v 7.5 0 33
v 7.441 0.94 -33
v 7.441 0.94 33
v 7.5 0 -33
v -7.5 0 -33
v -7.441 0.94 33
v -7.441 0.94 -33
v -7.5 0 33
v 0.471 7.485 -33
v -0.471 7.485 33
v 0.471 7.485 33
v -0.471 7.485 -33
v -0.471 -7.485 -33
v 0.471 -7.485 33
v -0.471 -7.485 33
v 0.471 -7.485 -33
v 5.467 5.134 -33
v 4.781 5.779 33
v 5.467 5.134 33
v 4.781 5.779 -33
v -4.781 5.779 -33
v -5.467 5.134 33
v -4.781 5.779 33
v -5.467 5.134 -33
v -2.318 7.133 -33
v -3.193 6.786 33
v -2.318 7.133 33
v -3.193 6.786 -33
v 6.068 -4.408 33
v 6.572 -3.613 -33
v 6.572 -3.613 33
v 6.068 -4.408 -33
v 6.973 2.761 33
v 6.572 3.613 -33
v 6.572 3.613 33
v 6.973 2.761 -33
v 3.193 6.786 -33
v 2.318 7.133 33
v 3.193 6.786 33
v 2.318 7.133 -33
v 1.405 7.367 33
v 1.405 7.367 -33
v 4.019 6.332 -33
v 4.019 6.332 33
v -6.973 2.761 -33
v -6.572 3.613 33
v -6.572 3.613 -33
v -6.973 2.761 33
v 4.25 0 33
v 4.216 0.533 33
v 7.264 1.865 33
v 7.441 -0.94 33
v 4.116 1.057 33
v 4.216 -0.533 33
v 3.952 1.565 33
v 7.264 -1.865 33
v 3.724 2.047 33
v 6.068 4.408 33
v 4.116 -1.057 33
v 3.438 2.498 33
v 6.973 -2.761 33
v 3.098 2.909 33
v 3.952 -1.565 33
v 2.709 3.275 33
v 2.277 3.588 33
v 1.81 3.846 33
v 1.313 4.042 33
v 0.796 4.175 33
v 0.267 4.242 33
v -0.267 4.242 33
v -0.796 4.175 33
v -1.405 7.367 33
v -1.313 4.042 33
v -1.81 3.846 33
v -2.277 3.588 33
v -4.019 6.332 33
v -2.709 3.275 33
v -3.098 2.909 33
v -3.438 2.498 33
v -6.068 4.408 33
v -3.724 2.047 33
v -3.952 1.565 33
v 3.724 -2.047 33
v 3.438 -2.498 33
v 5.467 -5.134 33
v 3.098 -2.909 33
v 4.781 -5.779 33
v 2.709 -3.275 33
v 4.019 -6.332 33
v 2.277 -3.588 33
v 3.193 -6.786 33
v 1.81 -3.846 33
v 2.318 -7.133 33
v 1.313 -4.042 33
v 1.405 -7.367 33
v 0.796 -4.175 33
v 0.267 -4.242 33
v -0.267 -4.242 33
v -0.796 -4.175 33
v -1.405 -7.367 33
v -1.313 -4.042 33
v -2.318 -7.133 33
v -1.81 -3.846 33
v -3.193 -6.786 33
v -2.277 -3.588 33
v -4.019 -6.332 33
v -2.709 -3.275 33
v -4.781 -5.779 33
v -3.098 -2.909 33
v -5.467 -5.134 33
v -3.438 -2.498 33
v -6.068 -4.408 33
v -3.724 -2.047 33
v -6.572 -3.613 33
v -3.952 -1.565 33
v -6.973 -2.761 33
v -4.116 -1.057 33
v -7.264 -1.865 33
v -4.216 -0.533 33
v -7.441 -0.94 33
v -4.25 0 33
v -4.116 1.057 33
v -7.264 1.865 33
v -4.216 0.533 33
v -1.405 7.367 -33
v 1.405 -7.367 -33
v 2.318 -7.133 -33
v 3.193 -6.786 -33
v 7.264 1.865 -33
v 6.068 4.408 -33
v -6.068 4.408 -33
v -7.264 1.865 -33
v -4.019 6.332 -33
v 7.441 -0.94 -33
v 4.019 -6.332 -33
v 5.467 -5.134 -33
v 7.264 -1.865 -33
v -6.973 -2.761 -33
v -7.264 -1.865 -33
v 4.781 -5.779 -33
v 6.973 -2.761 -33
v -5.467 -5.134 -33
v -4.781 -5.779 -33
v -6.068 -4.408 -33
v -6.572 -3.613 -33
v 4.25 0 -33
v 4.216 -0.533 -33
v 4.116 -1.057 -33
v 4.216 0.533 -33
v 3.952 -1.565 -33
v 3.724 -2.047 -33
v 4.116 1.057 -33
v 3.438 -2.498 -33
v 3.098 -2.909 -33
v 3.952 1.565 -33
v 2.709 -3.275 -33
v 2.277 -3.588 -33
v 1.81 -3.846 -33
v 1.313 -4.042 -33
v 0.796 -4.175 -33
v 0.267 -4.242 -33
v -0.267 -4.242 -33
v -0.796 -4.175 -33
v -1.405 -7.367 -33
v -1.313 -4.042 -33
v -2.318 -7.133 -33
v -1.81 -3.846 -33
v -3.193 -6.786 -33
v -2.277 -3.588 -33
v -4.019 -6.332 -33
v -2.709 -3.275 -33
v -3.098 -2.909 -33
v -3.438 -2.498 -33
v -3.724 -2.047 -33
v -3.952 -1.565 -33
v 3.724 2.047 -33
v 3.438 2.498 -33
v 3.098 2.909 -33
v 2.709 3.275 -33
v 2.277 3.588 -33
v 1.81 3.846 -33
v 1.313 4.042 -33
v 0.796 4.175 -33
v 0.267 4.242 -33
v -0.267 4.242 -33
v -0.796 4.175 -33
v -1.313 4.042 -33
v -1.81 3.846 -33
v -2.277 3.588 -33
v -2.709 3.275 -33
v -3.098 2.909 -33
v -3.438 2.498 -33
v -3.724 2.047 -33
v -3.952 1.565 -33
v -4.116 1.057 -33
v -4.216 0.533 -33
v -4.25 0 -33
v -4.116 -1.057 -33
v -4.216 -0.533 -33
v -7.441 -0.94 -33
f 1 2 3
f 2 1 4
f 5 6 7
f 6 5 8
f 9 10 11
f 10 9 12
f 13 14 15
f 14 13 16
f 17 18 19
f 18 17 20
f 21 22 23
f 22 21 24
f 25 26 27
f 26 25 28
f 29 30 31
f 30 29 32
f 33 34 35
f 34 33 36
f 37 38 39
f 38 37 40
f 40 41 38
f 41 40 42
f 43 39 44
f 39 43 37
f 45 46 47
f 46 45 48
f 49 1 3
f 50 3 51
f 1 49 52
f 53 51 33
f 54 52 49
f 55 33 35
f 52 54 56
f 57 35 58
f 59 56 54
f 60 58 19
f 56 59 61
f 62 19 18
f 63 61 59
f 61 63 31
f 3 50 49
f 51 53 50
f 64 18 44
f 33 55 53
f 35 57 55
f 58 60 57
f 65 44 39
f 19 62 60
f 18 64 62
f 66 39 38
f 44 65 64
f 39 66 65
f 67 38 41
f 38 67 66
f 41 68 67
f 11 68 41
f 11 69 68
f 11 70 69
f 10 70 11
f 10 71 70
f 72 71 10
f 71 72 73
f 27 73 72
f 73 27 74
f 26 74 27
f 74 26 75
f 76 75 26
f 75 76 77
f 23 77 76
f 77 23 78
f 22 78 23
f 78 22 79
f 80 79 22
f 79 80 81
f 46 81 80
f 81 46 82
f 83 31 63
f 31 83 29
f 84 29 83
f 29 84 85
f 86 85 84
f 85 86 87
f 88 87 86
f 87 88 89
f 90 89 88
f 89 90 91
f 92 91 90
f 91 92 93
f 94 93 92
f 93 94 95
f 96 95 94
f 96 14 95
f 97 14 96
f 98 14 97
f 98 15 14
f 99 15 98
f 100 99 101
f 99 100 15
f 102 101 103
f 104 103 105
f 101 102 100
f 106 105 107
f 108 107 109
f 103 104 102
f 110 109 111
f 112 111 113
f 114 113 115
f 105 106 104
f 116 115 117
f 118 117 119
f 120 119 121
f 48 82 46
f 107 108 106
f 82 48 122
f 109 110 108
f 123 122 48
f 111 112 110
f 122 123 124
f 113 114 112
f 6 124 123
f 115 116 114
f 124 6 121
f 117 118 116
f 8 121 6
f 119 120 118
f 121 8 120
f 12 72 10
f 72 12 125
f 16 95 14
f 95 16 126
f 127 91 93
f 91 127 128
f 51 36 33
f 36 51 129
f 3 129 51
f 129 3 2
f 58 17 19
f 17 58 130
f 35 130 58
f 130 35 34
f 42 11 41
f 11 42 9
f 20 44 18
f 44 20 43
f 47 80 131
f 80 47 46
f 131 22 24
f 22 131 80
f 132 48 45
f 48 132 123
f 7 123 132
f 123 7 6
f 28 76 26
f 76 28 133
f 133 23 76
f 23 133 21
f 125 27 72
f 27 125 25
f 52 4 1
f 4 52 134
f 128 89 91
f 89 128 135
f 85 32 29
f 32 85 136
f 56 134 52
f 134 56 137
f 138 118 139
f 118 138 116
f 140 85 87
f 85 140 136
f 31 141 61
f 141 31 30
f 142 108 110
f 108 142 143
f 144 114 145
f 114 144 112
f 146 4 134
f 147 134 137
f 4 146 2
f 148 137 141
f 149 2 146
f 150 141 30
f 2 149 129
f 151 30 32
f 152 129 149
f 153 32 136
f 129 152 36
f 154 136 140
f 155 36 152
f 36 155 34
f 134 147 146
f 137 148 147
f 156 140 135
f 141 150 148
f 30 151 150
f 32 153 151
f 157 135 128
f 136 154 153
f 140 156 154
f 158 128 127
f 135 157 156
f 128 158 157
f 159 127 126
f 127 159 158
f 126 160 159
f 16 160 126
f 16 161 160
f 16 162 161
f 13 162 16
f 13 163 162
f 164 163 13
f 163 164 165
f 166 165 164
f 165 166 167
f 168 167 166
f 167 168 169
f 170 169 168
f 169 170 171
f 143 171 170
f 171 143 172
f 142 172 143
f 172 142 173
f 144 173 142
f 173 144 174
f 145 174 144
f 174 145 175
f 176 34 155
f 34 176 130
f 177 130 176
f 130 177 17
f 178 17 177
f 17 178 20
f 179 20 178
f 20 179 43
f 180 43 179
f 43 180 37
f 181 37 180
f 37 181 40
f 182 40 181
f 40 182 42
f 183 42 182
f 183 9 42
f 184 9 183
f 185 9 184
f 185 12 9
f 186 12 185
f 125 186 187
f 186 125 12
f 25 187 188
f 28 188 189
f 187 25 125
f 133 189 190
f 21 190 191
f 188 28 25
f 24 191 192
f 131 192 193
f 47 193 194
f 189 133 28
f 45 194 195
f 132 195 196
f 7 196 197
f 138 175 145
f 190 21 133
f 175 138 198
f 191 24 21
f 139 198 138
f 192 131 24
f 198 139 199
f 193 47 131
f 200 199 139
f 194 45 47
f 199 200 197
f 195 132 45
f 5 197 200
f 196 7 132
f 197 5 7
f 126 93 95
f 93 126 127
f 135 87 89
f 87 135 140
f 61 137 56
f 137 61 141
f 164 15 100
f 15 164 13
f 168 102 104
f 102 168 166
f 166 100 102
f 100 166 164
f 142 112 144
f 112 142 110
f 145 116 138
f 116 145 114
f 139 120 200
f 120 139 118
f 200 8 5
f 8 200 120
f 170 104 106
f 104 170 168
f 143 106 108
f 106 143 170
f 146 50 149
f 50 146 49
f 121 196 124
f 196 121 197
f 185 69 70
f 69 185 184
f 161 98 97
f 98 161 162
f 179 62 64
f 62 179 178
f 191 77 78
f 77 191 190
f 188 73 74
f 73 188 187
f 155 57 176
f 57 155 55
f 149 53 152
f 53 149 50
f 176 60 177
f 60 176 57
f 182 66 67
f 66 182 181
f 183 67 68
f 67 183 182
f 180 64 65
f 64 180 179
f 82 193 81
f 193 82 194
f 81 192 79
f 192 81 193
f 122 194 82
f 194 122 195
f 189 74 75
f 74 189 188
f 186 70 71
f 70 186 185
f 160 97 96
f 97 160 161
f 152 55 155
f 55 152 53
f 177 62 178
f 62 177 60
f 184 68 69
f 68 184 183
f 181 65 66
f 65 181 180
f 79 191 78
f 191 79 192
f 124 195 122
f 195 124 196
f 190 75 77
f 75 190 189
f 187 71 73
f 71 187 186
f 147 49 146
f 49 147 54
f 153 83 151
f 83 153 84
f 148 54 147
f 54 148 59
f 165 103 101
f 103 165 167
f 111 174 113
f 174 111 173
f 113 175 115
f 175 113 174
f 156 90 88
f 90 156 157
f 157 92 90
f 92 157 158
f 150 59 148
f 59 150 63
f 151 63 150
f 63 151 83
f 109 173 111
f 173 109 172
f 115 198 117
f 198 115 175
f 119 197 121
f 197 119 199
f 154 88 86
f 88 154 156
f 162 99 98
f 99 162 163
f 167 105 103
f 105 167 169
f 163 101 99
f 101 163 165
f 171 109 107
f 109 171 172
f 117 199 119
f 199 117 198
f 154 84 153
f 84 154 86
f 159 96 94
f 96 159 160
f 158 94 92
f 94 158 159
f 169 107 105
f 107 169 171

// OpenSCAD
$fn = 50;


difference() {
	union() {
		translate(v = [0, 0, -33.0000000000]) {
			cylinder(h = 66, r = 7.5000000000);
		}
	}
	union() {
		translate(v = [0, 0, -100.0000000000]) {
			cylinder(h = 200, r = 4.2500000000);
		}
	}
}
